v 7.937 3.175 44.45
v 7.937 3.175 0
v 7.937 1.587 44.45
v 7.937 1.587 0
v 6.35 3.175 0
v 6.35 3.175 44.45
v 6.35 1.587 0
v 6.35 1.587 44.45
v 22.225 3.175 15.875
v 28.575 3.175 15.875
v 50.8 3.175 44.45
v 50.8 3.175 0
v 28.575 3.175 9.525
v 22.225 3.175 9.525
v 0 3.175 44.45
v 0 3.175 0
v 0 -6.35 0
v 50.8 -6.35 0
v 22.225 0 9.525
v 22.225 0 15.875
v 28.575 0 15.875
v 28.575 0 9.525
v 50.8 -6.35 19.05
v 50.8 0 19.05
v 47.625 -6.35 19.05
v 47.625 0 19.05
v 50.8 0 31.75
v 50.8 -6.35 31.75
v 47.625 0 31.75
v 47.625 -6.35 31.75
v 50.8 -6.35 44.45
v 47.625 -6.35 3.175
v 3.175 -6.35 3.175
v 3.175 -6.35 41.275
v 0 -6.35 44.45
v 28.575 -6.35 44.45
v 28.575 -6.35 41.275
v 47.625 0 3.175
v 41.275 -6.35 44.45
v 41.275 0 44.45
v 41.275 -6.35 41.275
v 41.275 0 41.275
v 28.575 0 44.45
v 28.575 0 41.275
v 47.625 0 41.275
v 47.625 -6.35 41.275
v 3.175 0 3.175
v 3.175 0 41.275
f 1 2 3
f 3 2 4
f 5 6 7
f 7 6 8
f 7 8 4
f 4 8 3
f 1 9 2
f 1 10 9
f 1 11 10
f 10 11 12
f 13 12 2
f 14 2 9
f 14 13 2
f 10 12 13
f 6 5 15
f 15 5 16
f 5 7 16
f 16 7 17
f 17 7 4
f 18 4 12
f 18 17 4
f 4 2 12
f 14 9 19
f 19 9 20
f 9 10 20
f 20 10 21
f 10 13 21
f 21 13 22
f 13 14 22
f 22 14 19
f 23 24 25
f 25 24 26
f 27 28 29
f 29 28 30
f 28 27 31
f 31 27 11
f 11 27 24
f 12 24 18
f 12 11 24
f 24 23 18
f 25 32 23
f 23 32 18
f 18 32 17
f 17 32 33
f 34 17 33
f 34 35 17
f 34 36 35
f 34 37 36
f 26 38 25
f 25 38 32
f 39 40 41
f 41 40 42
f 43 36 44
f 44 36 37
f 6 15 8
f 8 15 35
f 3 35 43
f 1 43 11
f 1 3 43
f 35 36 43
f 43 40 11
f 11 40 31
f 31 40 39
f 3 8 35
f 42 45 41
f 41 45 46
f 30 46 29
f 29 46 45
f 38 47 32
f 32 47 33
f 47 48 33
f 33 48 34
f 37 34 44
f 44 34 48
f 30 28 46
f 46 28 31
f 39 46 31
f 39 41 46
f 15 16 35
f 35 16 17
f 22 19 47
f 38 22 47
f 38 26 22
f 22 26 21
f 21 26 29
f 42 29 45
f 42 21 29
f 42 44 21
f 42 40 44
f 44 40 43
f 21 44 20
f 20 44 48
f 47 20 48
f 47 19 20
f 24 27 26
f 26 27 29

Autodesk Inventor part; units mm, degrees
ref_plane "YZ Plane" through (0, 0, 0) normal (1, 0, 0) x (0, 1, 0)
ref_plane "XZ Plane" through (0, 0, 0) normal (0, 1, 0) x (-1, 0, 0)
ref_plane "XY Plane" through (0, 0, 0) normal (0, 0, 1) x (1, 0, 0)
sketch "Sketch1" plane through (0, 0, 0) normal (0, 1, 0) x (-1, 0, 0)
  line L0 (0, 0) -> (-50.8, 0)
  line L1 (-50.8, 0) -> (-50.8, 44.45)
  line L2 (-50.8, 44.45) -> (0, 44.45)
  line L3 (0, 44.45) -> (0, 0)
  dimension "d0" = 50.8
  dimension "d1" = 44.45
extrude "Extrusion1" add sketch "Sketch1" along normal blind 3.175
sketch "Sketch2" plane through (0, 0, 44.45) normal (0, -1, 0) x (1, 0, 0)
  line L0 (50.8, 0) -> (0, 0)
  line L1 (0, 0) -> (0, -44.45)
  line L2 (0, -44.45) -> (50.8, -44.45)
  line L3 (50.8, -44.45) -> (50.8, 0)
  line L4 (3.175, -3.175) -> (47.625, -3.175)
  line L5 (47.625, -3.175) -> (47.625, -41.275)
  line L6 (47.625, -41.275) -> (3.175, -41.275)
  line L7 (3.175, -41.275) -> (3.175, -3.175)
  dimension "d4" = 3.175
  dimension "d7" = 3.175
  dimension "d5" = 3.175
  dimension "d6" = 3.175
extrude "Extrusion2" add sketch "Sketch2" along normal blind 6.35
sketch "Sketch3" plane through (0, -6.35, 44.45) normal (0, 0, 1) x (1, 0, 0)
  line L0 (28.575, 0) -> (41.275, 0)
  line L1 (41.275, 0) -> (41.275, 6.35)
  line L2 (41.275, 6.35) -> (28.575, 6.35)
  line L3 (28.575, 6.35) -> (28.575, 0)
  line L4 (50.8, 0) -> (0, 0) projected
  line L5 (0, 9.525) -> (50.8, 9.525) projected
  line L6 (0, 9.525) -> (0, 0) projected
  dimension "d18" = 0
  dimension "d20" = 28.575
  dimension "d21" = 41.275
  dimension "d27" = 6.35
extrude "Extrusion3" cut sketch "Sketch3" against normal blind 3.175
sketch "Sketch4" plane through (50.8, 3.175, 44.45) normal (1, 0, 0) x (0, 0, -1)
  line L0 (0, 0) -> (0, -9.525) projected
  line L1 (44.45, -9.525) -> (0, -9.525) projected
  line L2 (12.7, -9.525) -> (25.4, -9.525)
  line L3 (25.4, -9.525) -> (25.4, -3.175)
  line L4 (25.4, -3.175) -> (12.7, -3.175)
  line L5 (12.7, -3.175) -> (12.7, -9.525)
  point P0 (44.45, -3.175)
  dimension "d22" = 6.35
  dimension "d23" = 12.7
  dimension "d24" = 25.4
extrude "Extrusion4" cut sketch "Sketch4" against normal blind 3.175
sketch "Sketch5" plane through (0, 3.175, 0) normal (0, 1, 0) x (1, 0, 0)
  line L0 (50.8, 0) -> (0, 0) projected
  line L1 (0, 0) -> (0, -44.45) projected
  line L2 (22.225, -9.525) -> (28.575, -9.525)
  line L3 (28.575, -9.525) -> (28.575, -15.875)
  line L4 (28.575, -15.875) -> (22.225, -15.875)
  line L5 (22.225, -15.875) -> (22.225, -9.525)
  dimension "d28" = 22.225
  dimension "d29" = 28.575
  dimension "d30" = 9.525
  dimension "d31" = 15.875
extrude "Extrusion5" cut sketch "Sketch5" against normal blind 3.175
sketch "Sketch6" plane through (0, 3.175, 0) normal (0, 1, 0) x (1, 0, 0)
  line L0 (50.8, 0) -> (0, 0) projected
  line L1 (0, 0) -> (0, -44.45) projected
  line L2 (0, -44.45) -> (50.8, -44.45) projected
  line L3 (6.35, 0) -> (7.9375, 0)
  line L4 (7.9375, 0) -> (7.9375, -44.45)
  line L5 (7.9375, -44.45) -> (6.35, -44.45)
  line L6 (6.35, -44.45) -> (6.35, 0)
  dimension "d34" = 1.5875
  dimension "d35" = 6.35
extrude "Extrusion6" cut sketch "Sketch6" against normal blind 1.5875 contours L4 L2 L6 L0
properties part number "Casing Top"
